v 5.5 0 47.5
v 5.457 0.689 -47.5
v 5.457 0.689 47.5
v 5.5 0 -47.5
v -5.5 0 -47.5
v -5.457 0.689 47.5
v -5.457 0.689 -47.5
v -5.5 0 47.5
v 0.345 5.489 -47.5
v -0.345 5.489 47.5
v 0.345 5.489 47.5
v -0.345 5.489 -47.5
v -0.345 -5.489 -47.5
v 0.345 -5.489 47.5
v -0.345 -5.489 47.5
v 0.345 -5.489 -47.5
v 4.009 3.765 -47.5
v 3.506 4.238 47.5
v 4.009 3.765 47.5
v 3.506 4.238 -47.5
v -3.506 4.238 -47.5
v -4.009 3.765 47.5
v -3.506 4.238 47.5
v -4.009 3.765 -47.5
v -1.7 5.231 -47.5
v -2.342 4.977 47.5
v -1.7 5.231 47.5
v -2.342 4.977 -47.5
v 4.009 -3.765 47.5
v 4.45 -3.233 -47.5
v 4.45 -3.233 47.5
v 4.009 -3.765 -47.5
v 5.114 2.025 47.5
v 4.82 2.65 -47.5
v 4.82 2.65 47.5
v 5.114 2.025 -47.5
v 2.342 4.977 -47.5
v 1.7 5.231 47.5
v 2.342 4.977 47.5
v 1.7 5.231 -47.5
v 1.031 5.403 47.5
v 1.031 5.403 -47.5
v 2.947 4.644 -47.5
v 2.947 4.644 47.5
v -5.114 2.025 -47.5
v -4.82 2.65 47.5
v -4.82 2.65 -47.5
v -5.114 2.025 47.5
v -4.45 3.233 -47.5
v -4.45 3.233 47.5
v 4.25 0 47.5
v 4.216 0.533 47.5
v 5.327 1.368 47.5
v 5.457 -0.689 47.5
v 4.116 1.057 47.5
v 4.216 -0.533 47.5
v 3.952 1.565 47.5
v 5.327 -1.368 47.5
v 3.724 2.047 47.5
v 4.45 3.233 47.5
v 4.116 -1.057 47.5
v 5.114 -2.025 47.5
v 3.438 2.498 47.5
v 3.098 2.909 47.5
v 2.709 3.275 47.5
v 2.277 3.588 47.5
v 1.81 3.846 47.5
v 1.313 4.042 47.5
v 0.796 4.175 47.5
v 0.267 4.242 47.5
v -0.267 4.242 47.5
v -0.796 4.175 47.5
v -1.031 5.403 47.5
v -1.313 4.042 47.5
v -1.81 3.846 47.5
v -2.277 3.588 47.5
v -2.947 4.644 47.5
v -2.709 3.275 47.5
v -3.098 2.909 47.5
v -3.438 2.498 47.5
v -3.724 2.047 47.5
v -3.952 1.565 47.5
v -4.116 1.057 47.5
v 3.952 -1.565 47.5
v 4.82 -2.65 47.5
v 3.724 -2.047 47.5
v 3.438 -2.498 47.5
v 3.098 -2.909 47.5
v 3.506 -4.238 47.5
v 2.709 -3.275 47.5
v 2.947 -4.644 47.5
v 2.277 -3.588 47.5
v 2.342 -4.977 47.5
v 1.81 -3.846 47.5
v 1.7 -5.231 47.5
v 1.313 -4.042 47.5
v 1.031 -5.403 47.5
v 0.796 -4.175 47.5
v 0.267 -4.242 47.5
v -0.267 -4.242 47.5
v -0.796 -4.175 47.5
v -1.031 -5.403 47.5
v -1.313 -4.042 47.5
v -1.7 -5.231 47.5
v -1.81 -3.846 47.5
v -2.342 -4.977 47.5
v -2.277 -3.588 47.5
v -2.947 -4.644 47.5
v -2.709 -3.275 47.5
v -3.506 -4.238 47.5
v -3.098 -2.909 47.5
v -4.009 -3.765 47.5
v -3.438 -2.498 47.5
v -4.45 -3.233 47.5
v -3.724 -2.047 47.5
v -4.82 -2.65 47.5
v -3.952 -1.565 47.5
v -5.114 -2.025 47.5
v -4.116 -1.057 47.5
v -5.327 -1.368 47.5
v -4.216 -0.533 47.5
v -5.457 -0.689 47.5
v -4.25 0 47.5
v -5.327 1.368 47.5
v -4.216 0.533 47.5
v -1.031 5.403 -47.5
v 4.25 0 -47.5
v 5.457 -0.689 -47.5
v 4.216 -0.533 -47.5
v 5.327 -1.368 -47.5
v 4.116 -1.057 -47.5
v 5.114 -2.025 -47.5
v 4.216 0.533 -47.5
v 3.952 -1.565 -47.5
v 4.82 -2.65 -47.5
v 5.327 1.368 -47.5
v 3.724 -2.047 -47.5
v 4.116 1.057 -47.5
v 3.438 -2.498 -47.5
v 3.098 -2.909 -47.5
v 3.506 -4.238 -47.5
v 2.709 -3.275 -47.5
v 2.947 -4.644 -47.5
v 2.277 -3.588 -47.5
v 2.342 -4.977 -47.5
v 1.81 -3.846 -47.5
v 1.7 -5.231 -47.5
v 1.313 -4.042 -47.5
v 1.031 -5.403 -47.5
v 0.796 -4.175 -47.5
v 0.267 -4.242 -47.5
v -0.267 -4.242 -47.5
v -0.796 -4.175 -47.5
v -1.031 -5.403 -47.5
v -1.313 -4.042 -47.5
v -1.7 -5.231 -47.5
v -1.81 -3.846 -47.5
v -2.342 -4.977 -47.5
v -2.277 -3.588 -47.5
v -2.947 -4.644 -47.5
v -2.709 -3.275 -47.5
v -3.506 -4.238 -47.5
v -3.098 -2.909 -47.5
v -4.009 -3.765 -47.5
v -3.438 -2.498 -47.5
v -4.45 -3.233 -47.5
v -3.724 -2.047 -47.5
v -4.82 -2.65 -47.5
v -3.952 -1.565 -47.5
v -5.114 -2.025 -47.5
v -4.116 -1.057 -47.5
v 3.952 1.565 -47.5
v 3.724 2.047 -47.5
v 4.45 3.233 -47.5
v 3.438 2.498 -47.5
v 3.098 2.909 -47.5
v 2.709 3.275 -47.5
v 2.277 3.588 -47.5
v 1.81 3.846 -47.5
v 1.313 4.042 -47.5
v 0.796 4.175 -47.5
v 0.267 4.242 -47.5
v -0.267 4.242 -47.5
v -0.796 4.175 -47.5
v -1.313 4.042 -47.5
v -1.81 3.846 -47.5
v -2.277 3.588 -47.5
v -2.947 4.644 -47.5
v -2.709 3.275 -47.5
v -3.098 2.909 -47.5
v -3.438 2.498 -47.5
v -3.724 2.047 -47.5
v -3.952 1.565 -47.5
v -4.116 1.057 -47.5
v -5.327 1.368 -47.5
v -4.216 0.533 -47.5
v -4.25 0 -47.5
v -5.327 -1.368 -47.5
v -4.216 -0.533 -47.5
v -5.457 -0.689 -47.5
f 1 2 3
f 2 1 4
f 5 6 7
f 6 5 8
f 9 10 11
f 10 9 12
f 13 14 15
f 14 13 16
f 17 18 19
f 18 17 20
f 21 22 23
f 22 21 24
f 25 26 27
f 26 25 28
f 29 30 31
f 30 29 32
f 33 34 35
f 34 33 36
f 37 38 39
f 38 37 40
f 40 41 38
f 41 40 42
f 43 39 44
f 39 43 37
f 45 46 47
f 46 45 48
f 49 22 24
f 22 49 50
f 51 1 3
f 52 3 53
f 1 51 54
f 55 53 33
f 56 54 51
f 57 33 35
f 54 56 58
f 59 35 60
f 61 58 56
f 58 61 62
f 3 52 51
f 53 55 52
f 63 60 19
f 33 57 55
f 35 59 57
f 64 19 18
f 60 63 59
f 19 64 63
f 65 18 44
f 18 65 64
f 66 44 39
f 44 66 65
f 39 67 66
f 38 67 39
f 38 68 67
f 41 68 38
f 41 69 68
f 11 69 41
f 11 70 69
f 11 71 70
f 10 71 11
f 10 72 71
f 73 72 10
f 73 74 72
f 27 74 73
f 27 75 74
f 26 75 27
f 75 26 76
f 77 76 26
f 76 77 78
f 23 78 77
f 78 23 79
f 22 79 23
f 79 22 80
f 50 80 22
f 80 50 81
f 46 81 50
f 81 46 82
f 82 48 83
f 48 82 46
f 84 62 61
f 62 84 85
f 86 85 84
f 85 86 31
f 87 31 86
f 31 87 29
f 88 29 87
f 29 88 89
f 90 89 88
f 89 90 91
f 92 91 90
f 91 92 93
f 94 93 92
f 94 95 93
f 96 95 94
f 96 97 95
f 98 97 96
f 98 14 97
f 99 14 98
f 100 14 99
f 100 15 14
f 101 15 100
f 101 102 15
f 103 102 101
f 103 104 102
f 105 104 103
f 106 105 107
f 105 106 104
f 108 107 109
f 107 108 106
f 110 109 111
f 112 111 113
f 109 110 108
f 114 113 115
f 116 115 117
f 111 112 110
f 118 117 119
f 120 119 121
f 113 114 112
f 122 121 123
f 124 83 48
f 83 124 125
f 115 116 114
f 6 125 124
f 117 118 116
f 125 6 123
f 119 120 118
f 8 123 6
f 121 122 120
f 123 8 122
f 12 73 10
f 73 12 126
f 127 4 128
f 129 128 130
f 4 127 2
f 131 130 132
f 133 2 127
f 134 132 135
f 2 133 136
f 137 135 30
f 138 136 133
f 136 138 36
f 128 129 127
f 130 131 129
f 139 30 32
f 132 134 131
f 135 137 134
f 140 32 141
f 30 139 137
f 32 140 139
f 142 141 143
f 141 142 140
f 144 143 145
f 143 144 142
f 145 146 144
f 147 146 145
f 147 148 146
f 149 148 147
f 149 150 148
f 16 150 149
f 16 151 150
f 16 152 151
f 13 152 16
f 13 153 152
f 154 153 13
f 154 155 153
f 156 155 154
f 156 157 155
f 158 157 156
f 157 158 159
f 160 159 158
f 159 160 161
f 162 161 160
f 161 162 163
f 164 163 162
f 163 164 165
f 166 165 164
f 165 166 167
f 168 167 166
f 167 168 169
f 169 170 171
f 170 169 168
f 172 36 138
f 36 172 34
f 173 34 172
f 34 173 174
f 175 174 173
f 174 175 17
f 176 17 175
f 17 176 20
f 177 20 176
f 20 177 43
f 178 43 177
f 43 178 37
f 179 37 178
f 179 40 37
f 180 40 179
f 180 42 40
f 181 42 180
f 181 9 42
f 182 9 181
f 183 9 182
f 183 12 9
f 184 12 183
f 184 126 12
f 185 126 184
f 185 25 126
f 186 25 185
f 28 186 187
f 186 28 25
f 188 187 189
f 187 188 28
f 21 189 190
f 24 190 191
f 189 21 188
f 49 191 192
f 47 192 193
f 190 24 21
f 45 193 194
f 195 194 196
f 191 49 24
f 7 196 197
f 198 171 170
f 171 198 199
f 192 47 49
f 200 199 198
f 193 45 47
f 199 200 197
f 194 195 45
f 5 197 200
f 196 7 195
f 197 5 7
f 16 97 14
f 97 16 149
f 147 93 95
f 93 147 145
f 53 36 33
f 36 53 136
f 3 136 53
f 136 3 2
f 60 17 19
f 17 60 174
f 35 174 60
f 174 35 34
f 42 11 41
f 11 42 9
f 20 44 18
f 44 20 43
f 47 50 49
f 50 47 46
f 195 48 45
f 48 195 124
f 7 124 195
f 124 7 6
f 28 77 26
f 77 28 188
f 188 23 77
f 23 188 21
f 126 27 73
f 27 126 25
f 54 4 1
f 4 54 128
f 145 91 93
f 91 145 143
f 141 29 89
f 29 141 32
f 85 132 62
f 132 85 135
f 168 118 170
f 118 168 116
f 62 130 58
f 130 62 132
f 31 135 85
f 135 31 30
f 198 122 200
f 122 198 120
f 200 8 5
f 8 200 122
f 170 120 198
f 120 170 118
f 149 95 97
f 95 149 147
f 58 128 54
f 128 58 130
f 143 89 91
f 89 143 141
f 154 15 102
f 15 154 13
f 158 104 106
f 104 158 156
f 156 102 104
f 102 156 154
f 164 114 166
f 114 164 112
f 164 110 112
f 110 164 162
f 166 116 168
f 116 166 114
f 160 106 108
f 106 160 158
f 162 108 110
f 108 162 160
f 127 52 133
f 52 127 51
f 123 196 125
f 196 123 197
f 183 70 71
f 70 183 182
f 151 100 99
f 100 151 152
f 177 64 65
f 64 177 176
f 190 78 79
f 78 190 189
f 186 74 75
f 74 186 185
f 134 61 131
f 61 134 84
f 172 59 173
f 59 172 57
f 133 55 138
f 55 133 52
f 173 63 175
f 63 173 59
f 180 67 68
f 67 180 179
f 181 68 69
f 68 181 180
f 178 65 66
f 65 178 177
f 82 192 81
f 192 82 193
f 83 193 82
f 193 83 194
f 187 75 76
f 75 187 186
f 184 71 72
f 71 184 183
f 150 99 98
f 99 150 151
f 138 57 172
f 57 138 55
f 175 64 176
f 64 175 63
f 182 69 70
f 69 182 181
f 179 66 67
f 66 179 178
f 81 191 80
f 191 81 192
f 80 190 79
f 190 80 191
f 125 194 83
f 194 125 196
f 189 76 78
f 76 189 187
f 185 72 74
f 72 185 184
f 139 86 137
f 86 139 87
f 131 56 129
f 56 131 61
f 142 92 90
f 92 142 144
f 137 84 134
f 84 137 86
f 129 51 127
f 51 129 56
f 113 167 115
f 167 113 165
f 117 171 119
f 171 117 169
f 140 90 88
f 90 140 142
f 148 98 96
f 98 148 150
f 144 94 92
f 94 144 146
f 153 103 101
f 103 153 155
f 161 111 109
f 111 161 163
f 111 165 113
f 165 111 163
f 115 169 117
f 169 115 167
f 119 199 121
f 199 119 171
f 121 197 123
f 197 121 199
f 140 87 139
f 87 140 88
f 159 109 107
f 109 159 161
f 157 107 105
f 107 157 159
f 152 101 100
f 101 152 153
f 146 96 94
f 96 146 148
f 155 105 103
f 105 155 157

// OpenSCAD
$fn = 50;


difference() {
	union() {
		translate(v = [0, 0, -47.5000000000]) {
			cylinder(h = 95, r = 5.5000000000);
		}
	}
	union() {
		translate(v = [0, 0, -100.0000000000]) {
			cylinder(h = 200, r = 4.2500000000);
		}
	}
}
